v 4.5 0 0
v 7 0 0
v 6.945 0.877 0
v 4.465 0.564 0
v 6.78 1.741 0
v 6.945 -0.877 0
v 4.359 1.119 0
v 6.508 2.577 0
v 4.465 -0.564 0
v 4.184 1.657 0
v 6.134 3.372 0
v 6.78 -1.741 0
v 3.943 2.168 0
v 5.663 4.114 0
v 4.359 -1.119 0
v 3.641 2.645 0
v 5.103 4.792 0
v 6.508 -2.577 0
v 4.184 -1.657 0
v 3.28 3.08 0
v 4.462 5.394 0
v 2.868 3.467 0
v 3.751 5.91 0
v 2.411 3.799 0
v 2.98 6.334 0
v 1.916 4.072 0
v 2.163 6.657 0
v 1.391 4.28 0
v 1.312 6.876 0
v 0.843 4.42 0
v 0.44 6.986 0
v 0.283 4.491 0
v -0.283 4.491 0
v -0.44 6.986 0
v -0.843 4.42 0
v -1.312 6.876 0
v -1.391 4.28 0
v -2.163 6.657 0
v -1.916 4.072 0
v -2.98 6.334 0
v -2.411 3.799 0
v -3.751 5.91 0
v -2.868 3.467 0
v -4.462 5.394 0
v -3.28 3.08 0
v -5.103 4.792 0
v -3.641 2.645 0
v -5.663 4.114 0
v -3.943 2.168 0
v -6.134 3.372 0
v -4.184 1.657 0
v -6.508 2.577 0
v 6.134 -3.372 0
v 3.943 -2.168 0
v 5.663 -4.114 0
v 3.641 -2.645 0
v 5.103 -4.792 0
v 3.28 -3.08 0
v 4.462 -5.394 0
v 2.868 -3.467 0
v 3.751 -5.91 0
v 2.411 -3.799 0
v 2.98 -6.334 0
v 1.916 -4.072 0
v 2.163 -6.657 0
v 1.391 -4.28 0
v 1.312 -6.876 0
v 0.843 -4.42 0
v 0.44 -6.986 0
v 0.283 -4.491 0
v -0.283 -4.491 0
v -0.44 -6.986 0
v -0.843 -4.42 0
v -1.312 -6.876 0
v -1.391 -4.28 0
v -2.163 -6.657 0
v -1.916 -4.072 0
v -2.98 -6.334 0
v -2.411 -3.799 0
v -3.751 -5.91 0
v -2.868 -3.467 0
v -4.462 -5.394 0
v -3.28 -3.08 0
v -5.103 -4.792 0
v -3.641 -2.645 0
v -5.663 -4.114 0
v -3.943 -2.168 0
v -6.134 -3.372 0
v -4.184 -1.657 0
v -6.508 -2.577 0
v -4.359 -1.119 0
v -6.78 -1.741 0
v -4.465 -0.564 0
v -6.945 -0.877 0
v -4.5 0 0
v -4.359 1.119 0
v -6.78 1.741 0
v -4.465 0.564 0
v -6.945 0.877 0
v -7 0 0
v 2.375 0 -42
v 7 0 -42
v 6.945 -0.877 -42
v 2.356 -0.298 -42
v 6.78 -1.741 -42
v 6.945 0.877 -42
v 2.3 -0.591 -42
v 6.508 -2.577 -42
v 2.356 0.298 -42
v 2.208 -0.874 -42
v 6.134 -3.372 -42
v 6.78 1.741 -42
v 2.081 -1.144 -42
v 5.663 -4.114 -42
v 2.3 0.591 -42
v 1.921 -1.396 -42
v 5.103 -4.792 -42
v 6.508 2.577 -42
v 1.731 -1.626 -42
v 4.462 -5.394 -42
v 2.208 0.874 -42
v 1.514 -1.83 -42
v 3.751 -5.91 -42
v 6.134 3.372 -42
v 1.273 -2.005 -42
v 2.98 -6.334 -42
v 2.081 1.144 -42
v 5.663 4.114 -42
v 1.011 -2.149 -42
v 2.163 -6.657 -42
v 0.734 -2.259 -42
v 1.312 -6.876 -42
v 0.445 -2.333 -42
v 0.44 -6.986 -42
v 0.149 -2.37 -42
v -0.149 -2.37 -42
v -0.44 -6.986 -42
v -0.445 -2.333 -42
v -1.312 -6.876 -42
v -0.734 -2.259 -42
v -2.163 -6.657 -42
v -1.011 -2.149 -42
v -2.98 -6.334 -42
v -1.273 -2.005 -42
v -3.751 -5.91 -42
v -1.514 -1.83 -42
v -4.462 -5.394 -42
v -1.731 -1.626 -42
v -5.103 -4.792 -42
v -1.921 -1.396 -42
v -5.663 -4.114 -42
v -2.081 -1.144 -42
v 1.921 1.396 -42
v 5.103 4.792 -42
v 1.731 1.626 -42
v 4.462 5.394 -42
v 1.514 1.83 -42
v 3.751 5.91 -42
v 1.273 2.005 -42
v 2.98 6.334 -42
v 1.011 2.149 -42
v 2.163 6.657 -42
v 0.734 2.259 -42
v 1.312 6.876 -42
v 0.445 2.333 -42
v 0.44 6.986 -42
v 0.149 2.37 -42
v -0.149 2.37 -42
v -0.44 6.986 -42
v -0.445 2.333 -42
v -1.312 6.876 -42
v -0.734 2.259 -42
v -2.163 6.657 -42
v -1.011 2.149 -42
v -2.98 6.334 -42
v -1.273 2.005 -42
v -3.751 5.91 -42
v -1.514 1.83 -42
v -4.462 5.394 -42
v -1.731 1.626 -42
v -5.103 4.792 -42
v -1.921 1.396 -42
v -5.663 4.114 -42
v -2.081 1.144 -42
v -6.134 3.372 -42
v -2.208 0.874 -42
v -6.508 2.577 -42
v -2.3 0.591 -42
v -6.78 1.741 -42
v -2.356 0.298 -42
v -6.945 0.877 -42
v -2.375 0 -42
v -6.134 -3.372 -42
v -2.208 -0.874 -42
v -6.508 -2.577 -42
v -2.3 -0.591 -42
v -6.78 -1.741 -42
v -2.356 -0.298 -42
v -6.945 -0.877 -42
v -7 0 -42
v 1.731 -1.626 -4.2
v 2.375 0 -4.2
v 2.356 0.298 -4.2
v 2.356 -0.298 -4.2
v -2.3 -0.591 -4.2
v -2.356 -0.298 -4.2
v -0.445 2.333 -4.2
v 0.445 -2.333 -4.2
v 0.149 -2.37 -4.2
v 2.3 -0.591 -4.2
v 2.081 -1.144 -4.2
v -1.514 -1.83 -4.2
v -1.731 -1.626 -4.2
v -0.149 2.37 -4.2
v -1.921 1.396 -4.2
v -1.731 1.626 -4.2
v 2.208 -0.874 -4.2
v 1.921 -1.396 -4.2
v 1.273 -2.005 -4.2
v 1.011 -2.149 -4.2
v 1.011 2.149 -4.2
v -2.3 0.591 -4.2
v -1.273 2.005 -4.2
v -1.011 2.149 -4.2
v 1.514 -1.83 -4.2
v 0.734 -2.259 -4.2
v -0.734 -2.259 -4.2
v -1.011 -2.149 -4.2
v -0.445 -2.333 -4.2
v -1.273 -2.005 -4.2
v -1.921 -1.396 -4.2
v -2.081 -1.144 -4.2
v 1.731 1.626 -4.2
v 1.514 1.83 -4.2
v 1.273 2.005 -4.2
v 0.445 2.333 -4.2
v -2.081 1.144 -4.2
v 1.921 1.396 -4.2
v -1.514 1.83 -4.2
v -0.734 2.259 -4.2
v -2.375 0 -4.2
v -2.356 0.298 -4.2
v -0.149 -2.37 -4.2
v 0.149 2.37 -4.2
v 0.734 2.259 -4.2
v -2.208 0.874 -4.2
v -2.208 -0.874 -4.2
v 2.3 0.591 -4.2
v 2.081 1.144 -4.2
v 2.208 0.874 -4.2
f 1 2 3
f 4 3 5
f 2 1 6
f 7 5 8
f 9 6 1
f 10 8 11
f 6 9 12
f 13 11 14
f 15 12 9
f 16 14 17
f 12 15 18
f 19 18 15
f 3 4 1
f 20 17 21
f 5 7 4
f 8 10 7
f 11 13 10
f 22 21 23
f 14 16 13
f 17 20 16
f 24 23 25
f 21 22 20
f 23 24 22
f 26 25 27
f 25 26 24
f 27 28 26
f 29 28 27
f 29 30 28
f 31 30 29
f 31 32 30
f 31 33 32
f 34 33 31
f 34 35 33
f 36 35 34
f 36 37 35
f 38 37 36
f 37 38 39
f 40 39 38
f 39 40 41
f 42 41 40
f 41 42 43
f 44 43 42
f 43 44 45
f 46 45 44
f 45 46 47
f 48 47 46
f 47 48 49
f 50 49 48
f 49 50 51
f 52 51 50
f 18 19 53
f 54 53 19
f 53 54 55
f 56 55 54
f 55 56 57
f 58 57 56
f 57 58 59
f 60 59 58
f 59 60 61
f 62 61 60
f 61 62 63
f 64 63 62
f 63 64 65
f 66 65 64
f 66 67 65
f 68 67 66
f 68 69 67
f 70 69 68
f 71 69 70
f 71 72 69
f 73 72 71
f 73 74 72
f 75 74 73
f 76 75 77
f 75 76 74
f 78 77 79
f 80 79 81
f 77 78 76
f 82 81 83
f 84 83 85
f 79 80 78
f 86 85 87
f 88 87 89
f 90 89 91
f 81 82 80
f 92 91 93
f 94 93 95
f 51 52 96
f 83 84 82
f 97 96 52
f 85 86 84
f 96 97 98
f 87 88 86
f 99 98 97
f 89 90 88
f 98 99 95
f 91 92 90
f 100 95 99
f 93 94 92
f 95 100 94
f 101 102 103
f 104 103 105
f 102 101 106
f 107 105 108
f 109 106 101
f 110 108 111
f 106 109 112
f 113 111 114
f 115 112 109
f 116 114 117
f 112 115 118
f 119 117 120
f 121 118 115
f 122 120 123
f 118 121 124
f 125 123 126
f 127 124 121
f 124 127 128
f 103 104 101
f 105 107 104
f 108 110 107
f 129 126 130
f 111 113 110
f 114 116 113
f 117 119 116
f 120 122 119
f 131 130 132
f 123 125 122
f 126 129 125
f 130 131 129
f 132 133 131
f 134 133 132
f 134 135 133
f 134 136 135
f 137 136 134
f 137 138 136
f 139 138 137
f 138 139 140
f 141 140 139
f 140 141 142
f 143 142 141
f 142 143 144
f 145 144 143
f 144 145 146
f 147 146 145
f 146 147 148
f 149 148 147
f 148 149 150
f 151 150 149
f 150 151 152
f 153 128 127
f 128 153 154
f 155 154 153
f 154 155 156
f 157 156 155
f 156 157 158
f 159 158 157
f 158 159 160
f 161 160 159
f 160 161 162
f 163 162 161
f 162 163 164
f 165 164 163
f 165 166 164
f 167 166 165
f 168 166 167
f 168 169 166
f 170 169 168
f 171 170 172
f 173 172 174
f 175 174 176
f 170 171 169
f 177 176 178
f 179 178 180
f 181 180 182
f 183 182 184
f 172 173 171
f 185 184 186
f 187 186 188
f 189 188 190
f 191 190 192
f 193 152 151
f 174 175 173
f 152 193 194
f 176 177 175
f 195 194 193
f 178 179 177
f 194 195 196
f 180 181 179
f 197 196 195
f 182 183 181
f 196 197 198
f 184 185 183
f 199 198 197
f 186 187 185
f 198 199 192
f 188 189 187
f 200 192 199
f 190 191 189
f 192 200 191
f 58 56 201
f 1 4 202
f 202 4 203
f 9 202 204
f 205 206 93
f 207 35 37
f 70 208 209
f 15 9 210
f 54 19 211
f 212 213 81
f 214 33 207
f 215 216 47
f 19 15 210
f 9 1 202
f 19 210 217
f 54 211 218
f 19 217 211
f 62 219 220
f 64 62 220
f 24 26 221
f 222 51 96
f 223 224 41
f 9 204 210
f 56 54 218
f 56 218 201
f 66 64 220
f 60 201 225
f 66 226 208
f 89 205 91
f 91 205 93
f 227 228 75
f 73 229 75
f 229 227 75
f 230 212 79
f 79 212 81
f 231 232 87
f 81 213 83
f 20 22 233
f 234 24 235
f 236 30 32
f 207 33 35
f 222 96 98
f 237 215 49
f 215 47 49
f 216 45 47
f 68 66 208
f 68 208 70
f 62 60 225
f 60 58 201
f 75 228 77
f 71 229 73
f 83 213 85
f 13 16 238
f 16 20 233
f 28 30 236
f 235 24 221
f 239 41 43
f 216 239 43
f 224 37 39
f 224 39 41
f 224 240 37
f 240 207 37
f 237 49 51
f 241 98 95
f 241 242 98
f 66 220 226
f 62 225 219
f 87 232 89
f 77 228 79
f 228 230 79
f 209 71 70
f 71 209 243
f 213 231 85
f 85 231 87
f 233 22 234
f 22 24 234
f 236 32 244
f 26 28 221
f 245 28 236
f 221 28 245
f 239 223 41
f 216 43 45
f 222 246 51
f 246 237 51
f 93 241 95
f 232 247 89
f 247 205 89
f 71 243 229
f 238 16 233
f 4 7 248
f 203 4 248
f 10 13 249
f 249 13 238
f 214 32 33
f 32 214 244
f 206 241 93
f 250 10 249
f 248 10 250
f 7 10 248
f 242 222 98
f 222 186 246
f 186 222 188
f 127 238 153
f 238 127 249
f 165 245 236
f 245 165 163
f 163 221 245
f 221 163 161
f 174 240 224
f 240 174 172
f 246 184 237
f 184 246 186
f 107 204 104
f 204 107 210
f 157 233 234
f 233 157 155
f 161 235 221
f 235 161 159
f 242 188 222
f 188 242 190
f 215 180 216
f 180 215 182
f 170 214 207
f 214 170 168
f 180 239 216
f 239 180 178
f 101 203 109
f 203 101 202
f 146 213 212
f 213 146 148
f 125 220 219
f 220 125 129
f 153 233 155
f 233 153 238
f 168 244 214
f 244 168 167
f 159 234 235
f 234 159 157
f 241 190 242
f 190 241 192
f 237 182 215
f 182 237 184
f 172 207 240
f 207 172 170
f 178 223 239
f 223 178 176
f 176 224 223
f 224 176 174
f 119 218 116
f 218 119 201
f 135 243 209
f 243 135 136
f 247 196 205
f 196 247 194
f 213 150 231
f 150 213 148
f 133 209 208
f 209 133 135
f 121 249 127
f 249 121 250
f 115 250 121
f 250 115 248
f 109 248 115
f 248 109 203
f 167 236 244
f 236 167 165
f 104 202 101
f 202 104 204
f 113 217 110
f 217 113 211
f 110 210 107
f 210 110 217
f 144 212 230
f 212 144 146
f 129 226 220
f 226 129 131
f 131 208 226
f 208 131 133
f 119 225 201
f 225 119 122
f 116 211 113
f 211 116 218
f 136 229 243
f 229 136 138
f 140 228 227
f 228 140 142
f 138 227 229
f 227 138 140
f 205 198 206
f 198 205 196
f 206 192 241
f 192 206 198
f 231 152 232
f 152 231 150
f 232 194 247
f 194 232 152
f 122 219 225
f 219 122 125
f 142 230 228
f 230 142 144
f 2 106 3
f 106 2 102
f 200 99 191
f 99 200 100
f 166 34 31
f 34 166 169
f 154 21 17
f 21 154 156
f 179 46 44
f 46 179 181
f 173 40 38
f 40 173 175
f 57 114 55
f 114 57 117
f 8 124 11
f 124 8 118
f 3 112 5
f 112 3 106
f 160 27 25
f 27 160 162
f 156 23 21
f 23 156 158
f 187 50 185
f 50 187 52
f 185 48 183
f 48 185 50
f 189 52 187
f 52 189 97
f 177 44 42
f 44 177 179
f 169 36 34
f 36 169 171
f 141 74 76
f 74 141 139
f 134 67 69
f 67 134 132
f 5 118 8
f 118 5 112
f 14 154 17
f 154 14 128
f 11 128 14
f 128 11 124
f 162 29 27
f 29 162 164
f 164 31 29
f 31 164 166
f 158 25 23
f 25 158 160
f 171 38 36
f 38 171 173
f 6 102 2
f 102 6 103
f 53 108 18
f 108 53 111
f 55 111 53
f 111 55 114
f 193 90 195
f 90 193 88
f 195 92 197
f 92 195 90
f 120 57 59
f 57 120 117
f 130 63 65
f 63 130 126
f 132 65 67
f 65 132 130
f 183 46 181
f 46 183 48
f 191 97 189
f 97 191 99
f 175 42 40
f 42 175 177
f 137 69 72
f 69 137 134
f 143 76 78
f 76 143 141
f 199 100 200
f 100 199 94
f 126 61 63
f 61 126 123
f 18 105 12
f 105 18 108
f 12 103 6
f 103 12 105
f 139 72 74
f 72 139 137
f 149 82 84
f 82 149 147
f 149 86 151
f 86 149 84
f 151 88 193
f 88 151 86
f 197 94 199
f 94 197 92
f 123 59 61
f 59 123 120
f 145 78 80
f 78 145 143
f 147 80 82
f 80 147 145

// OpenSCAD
$fn = 50;


difference() {
	union() {
		translate(v = [0, 0, -42.0000000000]) {
			cylinder(h = 42, r = 7.0000000000);
		}
		cylinder(h = 0, r = 17.0000000000);
	}
	union() {
		translate(v = [0, 0, 0]) {
			rotate(a = [0, 0, 0]) {
				difference() {
					union() {
						#translate(v = [0, 0, -42.0000000000]) {
							cylinder(h = 42, r = 2.2500000000);
						}
						#translate(v = [0, 0, -4.2000000000]) {
							cylinder(h = 4.2000000000, r = 7.0000000000, r1 = 2.3750000000, r2 = 4.5000000000);
						}
						#translate(v = [0, 0, -42.0000000000]) {
							cylinder(h = 42, r = 2.3750000000);
						}
						#translate(v = [0, 0, -42.0000000000]) {
							cylinder(h = 42, r = 2.2500000000);
						}
					}
					union();
				}
			}
		}
	}
}
